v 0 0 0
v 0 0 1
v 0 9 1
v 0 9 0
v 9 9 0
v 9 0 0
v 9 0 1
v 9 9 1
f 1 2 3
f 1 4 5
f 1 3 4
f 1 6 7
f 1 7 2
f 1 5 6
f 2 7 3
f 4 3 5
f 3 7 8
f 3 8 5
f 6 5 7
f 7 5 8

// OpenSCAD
/* Warning, this is a very basic generator with a lot of approximation 
input data : [VQFN, TLB, 9x9x1mm, 64, , A, C04-21440A]
generated by com.zoubworld.electronics.cad.model3d.Basic
Date : Sun Feb 15 10:50:49 CET 2026
*/

//body
color("black")
translate([0,0,0])
cube([9.0,9.0,1.0], center=false);
